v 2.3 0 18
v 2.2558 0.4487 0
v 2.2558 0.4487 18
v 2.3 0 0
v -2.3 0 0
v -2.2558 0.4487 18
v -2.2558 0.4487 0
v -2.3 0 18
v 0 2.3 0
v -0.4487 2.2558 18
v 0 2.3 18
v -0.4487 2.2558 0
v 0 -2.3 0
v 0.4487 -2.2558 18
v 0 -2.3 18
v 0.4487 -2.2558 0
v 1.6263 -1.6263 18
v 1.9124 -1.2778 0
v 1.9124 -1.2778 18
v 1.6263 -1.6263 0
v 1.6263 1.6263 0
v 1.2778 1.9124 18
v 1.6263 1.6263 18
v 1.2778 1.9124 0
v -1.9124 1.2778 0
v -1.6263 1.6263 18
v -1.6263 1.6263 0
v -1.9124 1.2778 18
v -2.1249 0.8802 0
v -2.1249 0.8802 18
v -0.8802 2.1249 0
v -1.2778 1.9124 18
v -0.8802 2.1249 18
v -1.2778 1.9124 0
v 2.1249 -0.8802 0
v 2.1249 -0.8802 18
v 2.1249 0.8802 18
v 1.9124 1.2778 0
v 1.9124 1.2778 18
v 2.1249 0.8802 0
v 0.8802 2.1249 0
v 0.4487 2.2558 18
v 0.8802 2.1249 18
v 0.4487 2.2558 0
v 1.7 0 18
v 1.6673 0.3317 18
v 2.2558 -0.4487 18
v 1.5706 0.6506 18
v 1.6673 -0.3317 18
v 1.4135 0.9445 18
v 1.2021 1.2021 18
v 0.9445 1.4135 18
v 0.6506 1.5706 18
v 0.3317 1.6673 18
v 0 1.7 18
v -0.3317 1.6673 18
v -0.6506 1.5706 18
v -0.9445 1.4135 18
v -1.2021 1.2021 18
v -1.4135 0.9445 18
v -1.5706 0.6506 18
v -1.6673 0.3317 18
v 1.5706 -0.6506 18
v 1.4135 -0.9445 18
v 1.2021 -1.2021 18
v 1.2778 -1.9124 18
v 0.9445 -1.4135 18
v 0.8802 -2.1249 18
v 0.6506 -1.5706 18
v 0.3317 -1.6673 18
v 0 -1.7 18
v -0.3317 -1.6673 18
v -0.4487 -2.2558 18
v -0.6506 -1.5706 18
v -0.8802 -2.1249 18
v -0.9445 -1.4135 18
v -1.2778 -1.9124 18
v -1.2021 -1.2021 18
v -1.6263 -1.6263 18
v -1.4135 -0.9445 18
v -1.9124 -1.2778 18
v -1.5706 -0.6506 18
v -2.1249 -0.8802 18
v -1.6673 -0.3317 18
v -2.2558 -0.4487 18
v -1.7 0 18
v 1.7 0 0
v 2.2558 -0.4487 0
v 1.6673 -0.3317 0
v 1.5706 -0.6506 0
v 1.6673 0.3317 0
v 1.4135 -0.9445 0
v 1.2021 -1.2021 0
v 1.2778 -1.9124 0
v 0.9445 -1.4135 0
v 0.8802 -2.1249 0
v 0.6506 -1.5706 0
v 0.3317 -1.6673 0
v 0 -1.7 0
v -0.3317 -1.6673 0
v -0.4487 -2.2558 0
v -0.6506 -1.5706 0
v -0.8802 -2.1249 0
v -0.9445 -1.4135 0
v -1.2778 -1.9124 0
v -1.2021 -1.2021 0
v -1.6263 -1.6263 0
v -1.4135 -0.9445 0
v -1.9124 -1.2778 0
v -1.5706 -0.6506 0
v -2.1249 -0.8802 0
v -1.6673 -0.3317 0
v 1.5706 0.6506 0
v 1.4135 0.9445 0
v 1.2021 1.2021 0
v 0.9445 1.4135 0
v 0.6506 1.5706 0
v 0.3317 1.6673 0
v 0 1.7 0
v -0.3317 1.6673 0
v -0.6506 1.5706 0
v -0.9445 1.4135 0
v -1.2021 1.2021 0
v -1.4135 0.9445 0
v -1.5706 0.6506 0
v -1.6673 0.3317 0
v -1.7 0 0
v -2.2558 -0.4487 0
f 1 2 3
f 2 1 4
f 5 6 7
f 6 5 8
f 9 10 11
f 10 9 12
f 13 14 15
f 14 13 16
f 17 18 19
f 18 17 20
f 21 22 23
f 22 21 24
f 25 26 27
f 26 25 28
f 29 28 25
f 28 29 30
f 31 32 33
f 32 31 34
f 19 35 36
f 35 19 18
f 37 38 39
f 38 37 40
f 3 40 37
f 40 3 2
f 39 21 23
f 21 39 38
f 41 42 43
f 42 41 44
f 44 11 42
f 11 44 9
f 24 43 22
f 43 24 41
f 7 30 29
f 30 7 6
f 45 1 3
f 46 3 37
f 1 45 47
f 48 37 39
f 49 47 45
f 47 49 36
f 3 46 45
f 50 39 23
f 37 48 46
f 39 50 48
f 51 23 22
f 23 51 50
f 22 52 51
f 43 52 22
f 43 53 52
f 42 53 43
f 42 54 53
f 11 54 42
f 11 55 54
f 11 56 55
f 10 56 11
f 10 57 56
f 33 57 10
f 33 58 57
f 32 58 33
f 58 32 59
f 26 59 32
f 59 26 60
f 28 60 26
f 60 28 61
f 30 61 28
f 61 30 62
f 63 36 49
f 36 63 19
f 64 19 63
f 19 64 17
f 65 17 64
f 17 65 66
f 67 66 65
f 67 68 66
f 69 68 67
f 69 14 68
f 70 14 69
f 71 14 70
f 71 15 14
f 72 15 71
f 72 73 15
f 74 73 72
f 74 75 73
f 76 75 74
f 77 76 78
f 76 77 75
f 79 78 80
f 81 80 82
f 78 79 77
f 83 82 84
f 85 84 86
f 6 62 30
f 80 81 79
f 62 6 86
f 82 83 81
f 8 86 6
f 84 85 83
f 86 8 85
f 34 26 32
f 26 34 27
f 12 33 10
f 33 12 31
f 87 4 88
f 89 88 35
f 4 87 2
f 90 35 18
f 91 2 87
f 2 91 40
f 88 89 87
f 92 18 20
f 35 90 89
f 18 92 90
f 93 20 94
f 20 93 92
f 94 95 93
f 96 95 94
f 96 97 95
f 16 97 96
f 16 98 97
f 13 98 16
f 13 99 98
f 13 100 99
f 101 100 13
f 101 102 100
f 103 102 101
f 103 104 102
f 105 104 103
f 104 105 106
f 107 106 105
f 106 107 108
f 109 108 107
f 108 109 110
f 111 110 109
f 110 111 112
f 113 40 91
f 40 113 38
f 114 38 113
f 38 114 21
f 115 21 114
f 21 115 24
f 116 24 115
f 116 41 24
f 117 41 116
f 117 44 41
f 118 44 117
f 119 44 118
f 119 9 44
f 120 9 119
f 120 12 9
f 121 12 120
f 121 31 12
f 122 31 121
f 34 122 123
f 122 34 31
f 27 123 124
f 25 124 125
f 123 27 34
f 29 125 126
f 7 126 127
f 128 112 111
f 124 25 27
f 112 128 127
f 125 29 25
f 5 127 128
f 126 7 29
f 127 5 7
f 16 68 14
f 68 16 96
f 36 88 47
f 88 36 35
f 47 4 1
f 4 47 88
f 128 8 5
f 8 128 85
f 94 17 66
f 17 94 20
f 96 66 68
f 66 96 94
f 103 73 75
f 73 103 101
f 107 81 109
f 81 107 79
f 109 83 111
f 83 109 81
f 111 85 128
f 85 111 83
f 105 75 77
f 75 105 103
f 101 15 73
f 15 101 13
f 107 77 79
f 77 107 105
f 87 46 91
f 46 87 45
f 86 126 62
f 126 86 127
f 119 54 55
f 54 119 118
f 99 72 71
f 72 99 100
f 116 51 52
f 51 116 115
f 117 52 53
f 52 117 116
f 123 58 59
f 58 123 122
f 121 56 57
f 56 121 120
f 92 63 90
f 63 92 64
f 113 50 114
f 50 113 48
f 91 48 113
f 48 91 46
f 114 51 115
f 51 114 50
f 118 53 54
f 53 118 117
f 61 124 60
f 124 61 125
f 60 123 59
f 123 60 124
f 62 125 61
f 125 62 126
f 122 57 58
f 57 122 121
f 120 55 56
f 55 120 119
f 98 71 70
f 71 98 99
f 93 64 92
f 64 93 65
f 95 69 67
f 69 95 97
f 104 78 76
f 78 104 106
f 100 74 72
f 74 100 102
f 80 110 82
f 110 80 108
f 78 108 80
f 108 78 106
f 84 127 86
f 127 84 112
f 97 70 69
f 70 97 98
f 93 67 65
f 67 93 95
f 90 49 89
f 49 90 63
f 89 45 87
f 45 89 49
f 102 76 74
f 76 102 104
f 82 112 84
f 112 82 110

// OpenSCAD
difference() {
    cylinder(h=18, r=2.3, $fn = 32);
    cylinder(h=18, r=1.7, $fn = 32);
}
